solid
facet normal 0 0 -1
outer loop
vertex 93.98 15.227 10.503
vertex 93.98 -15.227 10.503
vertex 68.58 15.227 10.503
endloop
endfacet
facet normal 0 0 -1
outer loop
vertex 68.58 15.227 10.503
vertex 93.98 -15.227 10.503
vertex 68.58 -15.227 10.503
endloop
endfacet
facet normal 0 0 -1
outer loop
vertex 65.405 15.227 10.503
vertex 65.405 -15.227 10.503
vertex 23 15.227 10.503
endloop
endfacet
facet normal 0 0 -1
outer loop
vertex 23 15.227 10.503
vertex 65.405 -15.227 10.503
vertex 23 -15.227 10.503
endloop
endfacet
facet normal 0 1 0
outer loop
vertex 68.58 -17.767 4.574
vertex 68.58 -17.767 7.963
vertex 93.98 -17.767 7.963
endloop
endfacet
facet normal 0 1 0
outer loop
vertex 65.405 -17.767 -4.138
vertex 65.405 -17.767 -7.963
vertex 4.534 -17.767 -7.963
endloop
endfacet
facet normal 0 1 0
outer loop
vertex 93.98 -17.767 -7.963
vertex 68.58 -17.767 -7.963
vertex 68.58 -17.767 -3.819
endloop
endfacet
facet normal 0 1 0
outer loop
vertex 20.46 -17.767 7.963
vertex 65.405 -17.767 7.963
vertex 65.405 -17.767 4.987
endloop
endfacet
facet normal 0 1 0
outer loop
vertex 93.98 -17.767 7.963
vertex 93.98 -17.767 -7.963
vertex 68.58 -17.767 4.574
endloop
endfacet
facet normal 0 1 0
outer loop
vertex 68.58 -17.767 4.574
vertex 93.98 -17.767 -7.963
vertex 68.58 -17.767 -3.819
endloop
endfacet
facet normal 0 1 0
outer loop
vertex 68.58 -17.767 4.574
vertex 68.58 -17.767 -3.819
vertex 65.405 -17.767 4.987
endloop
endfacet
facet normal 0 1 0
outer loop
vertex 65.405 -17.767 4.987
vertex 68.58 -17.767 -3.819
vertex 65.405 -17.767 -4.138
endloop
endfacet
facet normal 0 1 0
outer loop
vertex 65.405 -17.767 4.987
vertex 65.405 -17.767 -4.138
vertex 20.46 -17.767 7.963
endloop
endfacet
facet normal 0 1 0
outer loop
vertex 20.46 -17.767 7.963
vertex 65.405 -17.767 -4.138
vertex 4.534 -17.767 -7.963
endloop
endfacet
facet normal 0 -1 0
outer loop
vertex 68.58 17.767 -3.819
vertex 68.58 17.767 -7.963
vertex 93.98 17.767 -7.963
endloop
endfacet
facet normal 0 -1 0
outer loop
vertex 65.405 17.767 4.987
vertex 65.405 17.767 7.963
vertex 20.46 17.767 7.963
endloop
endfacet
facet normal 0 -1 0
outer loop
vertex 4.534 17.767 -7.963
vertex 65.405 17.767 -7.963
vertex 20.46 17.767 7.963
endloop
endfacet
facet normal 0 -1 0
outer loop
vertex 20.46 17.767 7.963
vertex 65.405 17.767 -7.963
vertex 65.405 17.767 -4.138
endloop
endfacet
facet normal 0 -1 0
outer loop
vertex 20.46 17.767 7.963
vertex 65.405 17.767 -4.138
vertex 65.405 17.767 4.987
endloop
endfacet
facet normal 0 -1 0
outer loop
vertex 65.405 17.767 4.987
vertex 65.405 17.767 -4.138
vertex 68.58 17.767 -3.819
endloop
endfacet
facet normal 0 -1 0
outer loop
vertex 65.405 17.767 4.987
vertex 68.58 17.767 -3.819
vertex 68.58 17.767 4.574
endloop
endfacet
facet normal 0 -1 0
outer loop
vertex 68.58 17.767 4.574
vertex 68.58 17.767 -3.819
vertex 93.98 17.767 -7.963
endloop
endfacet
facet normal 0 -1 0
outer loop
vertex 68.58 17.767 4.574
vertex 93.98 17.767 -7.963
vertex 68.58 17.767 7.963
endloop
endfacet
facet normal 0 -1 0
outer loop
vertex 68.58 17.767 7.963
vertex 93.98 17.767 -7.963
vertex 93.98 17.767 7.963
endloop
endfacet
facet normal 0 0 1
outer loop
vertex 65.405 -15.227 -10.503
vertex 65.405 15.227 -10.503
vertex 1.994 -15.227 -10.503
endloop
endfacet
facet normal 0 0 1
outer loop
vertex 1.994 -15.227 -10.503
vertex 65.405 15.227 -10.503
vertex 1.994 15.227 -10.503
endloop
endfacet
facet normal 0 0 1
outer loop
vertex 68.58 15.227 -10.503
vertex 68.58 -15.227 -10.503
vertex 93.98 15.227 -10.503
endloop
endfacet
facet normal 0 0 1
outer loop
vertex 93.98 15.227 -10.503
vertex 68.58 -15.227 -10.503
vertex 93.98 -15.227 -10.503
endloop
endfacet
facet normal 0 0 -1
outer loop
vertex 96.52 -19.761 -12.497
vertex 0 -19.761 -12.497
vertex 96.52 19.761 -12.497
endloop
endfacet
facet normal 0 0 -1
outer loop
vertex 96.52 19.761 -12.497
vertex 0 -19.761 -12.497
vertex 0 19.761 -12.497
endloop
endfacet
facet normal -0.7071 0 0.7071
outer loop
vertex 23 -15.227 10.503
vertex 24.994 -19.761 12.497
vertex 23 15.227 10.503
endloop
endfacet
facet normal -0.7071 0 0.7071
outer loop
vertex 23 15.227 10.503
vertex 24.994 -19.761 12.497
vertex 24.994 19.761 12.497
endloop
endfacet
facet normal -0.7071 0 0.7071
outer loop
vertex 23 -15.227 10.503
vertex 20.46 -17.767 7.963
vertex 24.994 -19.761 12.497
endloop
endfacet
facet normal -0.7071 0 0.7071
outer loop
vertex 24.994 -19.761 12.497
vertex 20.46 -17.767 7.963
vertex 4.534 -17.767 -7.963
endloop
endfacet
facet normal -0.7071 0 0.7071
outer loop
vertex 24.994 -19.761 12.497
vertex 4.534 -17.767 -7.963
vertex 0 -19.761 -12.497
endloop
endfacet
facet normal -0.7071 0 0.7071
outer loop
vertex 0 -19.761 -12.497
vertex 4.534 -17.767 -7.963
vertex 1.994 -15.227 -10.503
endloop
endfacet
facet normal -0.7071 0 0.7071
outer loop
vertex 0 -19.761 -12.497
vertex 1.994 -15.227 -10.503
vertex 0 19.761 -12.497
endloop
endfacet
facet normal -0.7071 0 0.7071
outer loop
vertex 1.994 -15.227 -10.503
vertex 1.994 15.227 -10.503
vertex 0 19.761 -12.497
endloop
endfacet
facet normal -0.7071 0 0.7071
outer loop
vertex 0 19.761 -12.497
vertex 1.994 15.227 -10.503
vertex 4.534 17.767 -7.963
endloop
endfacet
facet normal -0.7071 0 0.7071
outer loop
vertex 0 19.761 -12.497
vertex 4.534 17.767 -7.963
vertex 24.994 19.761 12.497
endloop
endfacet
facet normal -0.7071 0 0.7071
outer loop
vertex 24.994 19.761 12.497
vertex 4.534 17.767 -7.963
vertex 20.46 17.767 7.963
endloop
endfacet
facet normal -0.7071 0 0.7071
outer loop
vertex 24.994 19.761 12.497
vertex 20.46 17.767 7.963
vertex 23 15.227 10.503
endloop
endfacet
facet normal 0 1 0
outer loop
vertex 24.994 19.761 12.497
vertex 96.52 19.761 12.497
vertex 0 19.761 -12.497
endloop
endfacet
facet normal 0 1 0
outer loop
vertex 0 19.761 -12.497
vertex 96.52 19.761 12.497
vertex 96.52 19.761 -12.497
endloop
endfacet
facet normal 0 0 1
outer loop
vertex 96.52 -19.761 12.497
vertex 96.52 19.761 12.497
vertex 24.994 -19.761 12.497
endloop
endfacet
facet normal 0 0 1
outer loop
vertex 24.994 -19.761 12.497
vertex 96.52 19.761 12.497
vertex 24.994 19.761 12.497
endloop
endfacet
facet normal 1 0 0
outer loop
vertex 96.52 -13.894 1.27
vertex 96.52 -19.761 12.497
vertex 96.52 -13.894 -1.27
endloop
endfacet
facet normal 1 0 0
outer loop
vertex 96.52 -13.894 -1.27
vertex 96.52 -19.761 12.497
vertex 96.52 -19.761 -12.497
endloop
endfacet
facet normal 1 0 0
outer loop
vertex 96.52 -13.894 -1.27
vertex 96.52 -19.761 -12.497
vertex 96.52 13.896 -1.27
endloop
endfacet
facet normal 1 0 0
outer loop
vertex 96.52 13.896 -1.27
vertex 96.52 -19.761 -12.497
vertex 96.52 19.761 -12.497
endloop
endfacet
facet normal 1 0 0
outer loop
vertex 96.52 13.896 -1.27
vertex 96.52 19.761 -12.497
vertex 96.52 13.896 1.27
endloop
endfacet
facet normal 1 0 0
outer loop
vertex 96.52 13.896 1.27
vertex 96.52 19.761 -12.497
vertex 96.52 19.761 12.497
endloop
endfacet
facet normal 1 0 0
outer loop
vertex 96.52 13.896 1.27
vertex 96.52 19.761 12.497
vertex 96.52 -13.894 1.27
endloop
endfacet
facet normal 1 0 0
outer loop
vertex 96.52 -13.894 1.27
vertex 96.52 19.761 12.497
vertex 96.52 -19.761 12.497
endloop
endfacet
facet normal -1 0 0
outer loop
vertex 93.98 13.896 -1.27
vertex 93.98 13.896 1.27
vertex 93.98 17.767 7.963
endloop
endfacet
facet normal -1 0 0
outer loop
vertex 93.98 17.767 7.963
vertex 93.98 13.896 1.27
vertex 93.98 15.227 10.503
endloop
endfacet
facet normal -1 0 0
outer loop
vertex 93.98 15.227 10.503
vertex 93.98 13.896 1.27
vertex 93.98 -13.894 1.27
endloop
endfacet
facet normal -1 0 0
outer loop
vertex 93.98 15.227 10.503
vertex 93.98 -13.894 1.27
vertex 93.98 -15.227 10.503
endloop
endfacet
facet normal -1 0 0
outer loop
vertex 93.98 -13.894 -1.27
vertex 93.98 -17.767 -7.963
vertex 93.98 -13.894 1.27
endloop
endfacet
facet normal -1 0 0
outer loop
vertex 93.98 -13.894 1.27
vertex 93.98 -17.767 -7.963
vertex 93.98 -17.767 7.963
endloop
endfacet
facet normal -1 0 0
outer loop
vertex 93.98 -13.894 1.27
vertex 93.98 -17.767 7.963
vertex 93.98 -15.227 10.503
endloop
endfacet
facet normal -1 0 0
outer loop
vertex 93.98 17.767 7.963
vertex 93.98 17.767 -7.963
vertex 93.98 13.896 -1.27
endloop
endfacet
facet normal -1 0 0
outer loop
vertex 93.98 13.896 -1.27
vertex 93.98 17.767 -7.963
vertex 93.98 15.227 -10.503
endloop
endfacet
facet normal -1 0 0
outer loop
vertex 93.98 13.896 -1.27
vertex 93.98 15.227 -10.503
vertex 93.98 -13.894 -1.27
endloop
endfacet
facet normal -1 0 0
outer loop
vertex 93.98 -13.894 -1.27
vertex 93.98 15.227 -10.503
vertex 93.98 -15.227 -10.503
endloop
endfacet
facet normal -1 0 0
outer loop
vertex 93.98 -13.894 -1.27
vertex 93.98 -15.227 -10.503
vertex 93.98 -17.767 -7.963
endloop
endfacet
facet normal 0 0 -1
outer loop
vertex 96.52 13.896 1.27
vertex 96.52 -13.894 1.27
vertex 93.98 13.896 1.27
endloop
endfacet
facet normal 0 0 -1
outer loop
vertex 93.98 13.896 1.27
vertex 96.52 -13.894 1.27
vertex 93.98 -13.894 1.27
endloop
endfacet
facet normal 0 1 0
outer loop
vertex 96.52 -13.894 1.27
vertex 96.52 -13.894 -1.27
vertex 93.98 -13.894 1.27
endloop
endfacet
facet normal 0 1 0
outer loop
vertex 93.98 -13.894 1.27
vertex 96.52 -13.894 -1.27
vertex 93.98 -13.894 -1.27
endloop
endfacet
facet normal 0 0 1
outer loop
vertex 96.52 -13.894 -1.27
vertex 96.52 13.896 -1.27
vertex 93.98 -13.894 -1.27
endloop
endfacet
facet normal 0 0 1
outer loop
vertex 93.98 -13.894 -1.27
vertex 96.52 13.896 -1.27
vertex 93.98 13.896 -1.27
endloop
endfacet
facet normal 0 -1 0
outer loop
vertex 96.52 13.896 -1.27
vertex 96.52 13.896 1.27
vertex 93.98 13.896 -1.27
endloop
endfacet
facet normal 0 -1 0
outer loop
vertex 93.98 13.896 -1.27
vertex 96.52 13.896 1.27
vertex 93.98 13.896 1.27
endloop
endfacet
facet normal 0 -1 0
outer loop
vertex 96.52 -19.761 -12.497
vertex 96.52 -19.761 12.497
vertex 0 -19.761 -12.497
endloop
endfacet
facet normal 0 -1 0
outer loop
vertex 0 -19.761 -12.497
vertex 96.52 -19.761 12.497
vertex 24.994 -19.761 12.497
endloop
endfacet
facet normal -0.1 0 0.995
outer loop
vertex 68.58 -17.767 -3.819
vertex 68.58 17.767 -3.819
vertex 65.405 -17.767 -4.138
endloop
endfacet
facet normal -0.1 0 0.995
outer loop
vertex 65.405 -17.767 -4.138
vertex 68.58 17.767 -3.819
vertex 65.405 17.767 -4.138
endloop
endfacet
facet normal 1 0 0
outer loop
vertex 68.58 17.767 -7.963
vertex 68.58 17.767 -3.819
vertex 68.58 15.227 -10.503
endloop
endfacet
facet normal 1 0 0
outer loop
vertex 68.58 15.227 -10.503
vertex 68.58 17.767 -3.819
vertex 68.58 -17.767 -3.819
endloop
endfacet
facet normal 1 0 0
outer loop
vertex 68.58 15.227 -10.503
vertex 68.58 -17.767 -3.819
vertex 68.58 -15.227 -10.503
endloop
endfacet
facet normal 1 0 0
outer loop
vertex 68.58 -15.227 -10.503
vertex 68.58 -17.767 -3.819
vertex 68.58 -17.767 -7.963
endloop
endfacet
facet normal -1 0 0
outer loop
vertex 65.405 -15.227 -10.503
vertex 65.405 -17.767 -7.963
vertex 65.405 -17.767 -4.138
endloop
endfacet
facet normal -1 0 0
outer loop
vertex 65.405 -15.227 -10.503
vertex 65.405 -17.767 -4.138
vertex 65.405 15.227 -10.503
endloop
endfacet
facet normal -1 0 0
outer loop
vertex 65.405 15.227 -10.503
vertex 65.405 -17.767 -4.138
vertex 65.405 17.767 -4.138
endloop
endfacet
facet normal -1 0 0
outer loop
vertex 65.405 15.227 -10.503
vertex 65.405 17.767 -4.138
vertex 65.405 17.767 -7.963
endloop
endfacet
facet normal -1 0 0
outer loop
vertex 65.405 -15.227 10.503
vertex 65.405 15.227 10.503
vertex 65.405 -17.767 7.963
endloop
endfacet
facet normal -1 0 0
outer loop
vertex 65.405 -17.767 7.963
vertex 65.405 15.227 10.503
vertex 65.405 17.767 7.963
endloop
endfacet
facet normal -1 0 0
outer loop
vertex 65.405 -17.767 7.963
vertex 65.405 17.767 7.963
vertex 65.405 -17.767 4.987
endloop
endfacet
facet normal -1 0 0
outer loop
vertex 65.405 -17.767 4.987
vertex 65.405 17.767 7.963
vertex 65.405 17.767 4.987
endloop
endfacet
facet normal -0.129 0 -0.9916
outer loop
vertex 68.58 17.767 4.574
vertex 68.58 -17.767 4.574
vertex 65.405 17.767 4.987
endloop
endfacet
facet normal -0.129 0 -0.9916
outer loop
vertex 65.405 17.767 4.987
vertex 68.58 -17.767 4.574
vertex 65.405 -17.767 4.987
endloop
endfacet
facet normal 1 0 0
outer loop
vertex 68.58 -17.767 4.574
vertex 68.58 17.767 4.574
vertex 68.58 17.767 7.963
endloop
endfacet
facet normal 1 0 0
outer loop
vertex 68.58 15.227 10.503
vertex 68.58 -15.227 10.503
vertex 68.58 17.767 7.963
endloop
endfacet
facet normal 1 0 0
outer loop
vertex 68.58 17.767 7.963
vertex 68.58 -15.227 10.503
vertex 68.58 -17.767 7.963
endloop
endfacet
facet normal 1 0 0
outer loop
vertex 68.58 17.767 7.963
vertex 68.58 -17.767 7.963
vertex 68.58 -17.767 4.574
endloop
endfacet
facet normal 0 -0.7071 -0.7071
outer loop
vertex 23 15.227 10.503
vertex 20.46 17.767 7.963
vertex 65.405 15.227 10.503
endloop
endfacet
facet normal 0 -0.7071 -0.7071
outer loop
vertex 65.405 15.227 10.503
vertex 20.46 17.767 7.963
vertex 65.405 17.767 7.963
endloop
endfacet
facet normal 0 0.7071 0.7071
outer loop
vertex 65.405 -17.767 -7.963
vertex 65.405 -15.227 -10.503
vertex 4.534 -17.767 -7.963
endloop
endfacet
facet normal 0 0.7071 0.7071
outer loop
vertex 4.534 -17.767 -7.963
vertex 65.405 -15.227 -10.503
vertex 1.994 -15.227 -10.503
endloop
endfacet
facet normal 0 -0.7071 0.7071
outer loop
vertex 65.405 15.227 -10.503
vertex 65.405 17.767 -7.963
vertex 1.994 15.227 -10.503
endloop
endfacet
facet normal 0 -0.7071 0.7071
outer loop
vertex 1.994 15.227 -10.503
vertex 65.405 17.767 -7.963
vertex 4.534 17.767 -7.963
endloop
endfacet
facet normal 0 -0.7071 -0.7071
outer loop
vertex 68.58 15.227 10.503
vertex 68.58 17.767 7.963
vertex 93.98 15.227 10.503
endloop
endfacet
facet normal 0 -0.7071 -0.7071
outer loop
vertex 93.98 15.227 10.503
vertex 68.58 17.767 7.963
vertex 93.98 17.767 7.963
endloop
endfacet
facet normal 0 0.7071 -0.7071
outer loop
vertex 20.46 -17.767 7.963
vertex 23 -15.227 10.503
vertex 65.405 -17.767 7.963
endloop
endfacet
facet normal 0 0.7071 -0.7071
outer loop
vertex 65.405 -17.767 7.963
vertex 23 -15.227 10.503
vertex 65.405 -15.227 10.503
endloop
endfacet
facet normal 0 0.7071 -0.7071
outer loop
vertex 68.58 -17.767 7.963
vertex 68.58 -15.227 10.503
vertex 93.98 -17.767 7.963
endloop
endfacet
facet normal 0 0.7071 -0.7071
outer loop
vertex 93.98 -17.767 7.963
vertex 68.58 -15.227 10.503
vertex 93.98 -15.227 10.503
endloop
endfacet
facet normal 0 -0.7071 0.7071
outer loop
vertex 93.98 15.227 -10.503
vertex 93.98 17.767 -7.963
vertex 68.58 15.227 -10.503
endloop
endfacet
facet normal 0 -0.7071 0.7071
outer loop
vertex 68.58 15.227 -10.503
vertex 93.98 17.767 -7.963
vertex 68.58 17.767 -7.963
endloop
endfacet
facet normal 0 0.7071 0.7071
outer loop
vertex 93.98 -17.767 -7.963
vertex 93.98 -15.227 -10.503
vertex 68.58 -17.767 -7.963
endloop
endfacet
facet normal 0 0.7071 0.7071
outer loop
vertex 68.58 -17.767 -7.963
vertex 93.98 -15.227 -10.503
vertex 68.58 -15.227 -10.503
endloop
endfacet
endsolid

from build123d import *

# Parameters (mm, degrees)
SALIENTE_EXTRUIR1_DEPTH = 37.5285
CORTAR_EXTRUIR1_DEPTH   = 18.4023
SALIENTE_EXTRUIR2_DEPTH = 15.0114
SALIENTE_EXTRUIR3_DEPTH = 53.975
CORTAR_EXTRUIR2_DEPTH   = 17.1323
CROQUIS6_W              = 24.9936
CROQUIS6_H              = 37.5285
CROQUIS6_W_2            = 2.54
CROQUIS6_H_2            = 27.79
SALIENTE_EXTRUIR4_DEPTH = 2.54
SALIENTE_EXTRUIR5_DEPTH = 1.9939
SALIENTE_EXTRUIR6_DEPTH = 17.1323
SALIENTE_EXTRUIR7_DEPTH = 18.683041561
SALIENTE_EXTRUIR8_DEPTH = 19.015985732
SALIENTE_EXTRUIR9_DEPTH = 17.1323
CHAFL_N1_SIZE           = 2.54


with BuildPart() as part:
    # Croquis1 → Saliente-Extruir1 (new body)
    with BuildSketch(Plane(origin=(0, 19.7612, 0), x_dir=(1, 0, 0), z_dir=(0, 1, 0))):
        Polygon((0, 12.4968), (24.9936, -12.4968), (24.9936, 12.4968), align=None)
    extrude(amount=-SALIENTE_EXTRUIR1_DEPTH)

    # Croquis2 → Cortar-Extruir1 (cut)
    with BuildSketch(Plane.XZ.offset(17.7673)):
        Polygon((24.9936, -10.5029), (24.9936, 10.5029), (22.9997, 10.5029), (1.9939, -10.5029), align=None)
    extrude(amount=-CORTAR_EXTRUIR1_DEPTH, mode=Mode.SUBTRACT)

    # Croquis3 → Saliente-Extruir2 (add)
    with BuildSketch(Plane(origin=(24.9936, 0, 0), x_dir=(0, 0, -1), z_dir=(1, 0, 0))):
        Polygon((10.5029, -17.7673), (10.5029, 0.635), (-10.5029, 0.635), (-10.5029, -17.7673), (-12.4968, -17.7673), (-12.4968, 19.7612), (12.4968, 19.7612), (12.4968, -17.7673), align=None)
    extrude(amount=SALIENTE_EXTRUIR2_DEPTH)

    # Croquis4 → Saliente-Extruir3 (add)
    with BuildSketch(Plane(origin=(40.005, 0, 0), x_dir=(0, 0, -1), z_dir=(1, 0, 0))):
        Polygon((10.5029, 1.469986946), (-10.5029, 1.469986946), (-10.5029, -17.7673), (-12.4968, -17.7673), (-12.4968, 19.7612), (12.4968, 19.7612), (12.4968, -17.7673), (10.5029, -17.7673), align=None)
    extrude(amount=SALIENTE_EXTRUIR3_DEPTH)

    # Croquis5 → Cortar-Extruir2 (cut)
    with BuildSketch(Plane.XZ.offset(-0.635)):
        Polygon((93.98, -10.5029), (93.98, 10.5029), (22.9997, 10.5029), (1.9939, -10.5029), align=None)
    extrude(amount=-CORTAR_EXTRUIR2_DEPTH, mode=Mode.SUBTRACT)

    # Croquis6 → Saliente-Extruir4 (add)
    with BuildSketch(Plane(origin=(93.98, 0, 0), x_dir=(0, 0, -1), z_dir=(1, 0, 0))):
        with Locations((0, 0.99695)):
            Rectangle(CROQUIS6_W, CROQUIS6_H)
        with Locations((0, 0.0012)):
            Rectangle(CROQUIS6_W_2, CROQUIS6_H_2, mode=Mode.SUBTRACT)
    extrude(amount=SALIENTE_EXTRUIR4_DEPTH)

    # Croquis7 → Saliente-Extruir5 (add)
    with BuildSketch(Plane.XZ.offset(17.7673)):
        Polygon((24.9936, 12.4968), (96.52, 12.4968), (96.52, -12.4968), (0, -12.4968), align=None)
    extrude(amount=SALIENTE_EXTRUIR5_DEPTH)

    # Croquis8 → Saliente-Extruir6 (add)
    with BuildSketch(Plane(origin=(0, -17.7673, 0), x_dir=(-1, 0, 0), z_dir=(0, 1, 0))):
        Polygon((-65.405, -4.138152009), (-65.405, -10.5029), (-68.58, -10.5029), (-68.58, -3.819468452), align=None)
    extrude(amount=SALIENTE_EXTRUIR6_DEPTH)

    # Croquis9 → Saliente-Extruir7 (add)
    with BuildSketch(Plane.XZ.offset(-17.7673)):
        Polygon((65.405, 10.5029), (68.58, 10.5029), (68.58, 4.573954196), (65.405, 4.98694847), align=None)
    extrude(amount=SALIENTE_EXTRUIR7_DEPTH)

    # Croquis10 → Saliente-Extruir8 (add)
    with BuildSketch(Plane.XZ.offset(-17.7673)):
        Polygon((68.58, -3.819468452), (68.58, -10.5029), (65.405, -10.5029), (65.405, -4.138152009), align=None)
    extrude(amount=SALIENTE_EXTRUIR8_DEPTH)

    # Croquis11 → Saliente-Extruir9 (add)
    with BuildSketch(Plane(origin=(0, -17.7673, 0), x_dir=(-1, 0, 0), z_dir=(0, 1, 0))):
        Polygon((-68.58, 10.5029), (-65.405, 10.5029), (-65.405, 4.98694847), (-68.58, 4.573954196), align=None)
    extrude(amount=SALIENTE_EXTRUIR9_DEPTH)

    # Chaflán1
    chafl_n1_edges = [part.edges().sort_by_distance(p)[0] for p in [
        (81.28, -17.7673, -10.5029),
        (44.20235, 17.7673, 10.5029),
        (81.28, 17.7673, -10.5029),
        (33.69945, -17.7673, -10.5029),
        (81.28, -17.7673, 10.5029),
        (44.20235, -17.7673, 10.5029),
        (33.69945, 17.7673, -10.5029),
        (81.28, 17.7673, 10.5029),
    ]]
    chamfer(chafl_n1_edges, length=CHAFL_N1_SIZE)


solid = part.part
